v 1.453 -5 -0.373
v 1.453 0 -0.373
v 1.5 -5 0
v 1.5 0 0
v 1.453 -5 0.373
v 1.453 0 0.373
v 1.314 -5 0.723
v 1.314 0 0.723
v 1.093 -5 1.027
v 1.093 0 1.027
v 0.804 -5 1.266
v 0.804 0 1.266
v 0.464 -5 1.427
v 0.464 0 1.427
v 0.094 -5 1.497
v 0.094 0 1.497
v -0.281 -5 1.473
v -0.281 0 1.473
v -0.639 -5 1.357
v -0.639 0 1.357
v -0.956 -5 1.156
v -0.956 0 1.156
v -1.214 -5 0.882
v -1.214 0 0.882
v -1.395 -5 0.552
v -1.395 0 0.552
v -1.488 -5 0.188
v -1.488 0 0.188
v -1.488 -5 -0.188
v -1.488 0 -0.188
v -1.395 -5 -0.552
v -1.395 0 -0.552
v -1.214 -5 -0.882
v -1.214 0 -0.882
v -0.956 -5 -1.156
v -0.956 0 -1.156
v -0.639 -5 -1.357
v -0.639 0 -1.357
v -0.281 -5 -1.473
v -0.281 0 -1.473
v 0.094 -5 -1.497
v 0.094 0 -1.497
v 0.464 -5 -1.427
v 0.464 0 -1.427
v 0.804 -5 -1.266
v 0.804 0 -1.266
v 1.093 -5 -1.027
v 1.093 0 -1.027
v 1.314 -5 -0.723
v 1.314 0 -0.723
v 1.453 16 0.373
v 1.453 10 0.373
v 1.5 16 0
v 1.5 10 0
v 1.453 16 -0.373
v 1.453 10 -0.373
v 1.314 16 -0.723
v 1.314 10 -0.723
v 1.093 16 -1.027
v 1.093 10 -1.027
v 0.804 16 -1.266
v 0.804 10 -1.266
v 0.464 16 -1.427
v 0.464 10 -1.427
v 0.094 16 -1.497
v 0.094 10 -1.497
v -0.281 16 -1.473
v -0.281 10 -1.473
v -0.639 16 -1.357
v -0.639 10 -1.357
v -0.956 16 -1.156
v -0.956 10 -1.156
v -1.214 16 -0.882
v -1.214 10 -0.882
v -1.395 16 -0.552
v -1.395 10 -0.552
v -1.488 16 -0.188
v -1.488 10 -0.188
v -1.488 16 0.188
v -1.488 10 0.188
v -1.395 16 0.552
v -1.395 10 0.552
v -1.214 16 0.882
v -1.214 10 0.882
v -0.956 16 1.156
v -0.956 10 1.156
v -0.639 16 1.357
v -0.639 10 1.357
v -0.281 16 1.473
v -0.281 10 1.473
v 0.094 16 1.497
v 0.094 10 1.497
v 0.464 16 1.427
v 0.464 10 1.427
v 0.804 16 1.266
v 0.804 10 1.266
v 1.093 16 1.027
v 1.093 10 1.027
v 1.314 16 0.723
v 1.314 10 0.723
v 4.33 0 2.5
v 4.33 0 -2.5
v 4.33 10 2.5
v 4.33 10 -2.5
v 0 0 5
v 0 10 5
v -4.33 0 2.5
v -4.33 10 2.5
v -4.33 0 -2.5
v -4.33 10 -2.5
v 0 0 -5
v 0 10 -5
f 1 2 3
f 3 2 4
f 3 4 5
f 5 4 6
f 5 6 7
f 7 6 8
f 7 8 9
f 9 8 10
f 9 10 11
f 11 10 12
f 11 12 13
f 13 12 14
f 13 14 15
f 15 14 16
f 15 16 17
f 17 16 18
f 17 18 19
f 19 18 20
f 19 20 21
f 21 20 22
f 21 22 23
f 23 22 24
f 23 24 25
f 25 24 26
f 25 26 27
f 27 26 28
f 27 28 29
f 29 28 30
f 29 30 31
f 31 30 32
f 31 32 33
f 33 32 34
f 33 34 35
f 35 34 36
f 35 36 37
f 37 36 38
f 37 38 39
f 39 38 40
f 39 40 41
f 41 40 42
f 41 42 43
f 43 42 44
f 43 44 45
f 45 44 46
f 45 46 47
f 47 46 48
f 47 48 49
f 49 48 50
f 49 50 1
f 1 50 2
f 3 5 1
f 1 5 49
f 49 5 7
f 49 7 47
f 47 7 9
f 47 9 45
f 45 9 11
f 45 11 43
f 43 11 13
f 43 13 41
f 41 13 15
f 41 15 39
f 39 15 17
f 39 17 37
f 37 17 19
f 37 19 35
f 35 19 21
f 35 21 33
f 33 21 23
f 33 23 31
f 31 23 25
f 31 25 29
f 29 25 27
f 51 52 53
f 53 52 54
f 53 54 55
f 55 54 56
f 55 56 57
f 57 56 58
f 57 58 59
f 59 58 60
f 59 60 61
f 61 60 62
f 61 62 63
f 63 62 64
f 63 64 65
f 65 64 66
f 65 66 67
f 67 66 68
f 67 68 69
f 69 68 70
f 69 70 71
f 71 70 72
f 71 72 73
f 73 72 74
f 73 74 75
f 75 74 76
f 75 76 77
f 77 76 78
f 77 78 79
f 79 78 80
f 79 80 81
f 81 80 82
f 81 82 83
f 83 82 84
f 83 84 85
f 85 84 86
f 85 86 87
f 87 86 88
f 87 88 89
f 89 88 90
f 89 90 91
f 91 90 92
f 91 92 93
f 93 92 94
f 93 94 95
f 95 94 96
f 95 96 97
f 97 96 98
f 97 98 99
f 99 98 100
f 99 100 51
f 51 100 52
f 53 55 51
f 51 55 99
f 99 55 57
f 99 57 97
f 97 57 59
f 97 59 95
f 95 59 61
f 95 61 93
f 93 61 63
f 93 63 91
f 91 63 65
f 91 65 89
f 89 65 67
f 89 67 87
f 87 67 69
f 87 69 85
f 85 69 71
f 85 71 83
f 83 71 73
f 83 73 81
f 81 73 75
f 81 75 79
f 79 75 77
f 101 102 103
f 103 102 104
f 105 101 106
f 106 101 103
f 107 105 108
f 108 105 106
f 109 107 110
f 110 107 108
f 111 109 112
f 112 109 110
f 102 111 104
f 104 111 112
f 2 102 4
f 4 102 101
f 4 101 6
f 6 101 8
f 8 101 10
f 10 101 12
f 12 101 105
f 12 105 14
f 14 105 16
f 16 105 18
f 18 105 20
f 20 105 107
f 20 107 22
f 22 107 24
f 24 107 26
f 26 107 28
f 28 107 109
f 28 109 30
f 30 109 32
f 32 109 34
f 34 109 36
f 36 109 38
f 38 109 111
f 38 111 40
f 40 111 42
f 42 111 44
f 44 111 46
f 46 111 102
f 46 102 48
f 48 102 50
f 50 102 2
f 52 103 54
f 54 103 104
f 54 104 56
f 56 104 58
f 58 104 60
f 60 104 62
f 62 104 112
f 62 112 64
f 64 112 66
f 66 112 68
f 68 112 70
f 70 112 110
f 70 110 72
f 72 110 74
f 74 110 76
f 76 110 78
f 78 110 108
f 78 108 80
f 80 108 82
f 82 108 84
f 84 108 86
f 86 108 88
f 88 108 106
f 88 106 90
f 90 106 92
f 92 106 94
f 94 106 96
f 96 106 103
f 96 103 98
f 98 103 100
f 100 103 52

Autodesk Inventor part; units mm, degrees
ref_plane "YZ Plane" through (0, 0, 0) normal (1, 0, 0) x (0, 1, 0)
ref_plane "XZ Plane" through (0, 0, 0) normal (0, 1, 0) x (-1, 0, 0)
ref_plane "XY Plane" through (0, 0, 0) normal (0, 0, 1) x (1, 0, 0)
sketch "Sketch1" plane through (0, 0, 0) normal (0, 1, 0) x (-1, 0, 0)
  line L0 (0, -5) -> (-4.3301, -2.5)
  line L1 (-4.3301, -2.5) -> (-4.3301, 2.5)
  line L2 (-4.3301, 2.5) -> (0, 5)
  line L3 (0, 5) -> (4.3301, 2.5)
  line L4 (4.3301, 2.5) -> (4.3301, -2.5)
  line L5 (4.3301, -2.5) -> (0, -5)
  point P0 (0, 0)
  point P1 (0, 0)
  point P2 (0, 0)
  dimension "d1" = 5
extrude "Extrusion1" add sketch "Sketch1" along normal blind 10
sketch "Sketch2" plane through (0, 10, 0) normal (0, 1, 0) x (1, 0, 0)
  circle A0 centre (0, 0) radius 1.5
  dimension "d4" = 3
extrude "Extrusion2" add sketch "Sketch2" along normal blind 6
sketch "Sketch3" plane through (0, 0, 0) normal (0, -1, 0) x (1, 0, 0)
  circle A0 centre (0, 0) radius 1.5
  dimension "d7" = 3
extrude "Extrusion3" add sketch "Sketch3" along normal blind 5
thread "Thread1" size "M3x0.5" class "6g" standard "ANSI Metric M Profile" length 4
thread "Thread2" size "M3x0.5" class "6g" standard "ANSI Metric M Profile" full length
properties part number "spacer" material "Aluminum 6061"
